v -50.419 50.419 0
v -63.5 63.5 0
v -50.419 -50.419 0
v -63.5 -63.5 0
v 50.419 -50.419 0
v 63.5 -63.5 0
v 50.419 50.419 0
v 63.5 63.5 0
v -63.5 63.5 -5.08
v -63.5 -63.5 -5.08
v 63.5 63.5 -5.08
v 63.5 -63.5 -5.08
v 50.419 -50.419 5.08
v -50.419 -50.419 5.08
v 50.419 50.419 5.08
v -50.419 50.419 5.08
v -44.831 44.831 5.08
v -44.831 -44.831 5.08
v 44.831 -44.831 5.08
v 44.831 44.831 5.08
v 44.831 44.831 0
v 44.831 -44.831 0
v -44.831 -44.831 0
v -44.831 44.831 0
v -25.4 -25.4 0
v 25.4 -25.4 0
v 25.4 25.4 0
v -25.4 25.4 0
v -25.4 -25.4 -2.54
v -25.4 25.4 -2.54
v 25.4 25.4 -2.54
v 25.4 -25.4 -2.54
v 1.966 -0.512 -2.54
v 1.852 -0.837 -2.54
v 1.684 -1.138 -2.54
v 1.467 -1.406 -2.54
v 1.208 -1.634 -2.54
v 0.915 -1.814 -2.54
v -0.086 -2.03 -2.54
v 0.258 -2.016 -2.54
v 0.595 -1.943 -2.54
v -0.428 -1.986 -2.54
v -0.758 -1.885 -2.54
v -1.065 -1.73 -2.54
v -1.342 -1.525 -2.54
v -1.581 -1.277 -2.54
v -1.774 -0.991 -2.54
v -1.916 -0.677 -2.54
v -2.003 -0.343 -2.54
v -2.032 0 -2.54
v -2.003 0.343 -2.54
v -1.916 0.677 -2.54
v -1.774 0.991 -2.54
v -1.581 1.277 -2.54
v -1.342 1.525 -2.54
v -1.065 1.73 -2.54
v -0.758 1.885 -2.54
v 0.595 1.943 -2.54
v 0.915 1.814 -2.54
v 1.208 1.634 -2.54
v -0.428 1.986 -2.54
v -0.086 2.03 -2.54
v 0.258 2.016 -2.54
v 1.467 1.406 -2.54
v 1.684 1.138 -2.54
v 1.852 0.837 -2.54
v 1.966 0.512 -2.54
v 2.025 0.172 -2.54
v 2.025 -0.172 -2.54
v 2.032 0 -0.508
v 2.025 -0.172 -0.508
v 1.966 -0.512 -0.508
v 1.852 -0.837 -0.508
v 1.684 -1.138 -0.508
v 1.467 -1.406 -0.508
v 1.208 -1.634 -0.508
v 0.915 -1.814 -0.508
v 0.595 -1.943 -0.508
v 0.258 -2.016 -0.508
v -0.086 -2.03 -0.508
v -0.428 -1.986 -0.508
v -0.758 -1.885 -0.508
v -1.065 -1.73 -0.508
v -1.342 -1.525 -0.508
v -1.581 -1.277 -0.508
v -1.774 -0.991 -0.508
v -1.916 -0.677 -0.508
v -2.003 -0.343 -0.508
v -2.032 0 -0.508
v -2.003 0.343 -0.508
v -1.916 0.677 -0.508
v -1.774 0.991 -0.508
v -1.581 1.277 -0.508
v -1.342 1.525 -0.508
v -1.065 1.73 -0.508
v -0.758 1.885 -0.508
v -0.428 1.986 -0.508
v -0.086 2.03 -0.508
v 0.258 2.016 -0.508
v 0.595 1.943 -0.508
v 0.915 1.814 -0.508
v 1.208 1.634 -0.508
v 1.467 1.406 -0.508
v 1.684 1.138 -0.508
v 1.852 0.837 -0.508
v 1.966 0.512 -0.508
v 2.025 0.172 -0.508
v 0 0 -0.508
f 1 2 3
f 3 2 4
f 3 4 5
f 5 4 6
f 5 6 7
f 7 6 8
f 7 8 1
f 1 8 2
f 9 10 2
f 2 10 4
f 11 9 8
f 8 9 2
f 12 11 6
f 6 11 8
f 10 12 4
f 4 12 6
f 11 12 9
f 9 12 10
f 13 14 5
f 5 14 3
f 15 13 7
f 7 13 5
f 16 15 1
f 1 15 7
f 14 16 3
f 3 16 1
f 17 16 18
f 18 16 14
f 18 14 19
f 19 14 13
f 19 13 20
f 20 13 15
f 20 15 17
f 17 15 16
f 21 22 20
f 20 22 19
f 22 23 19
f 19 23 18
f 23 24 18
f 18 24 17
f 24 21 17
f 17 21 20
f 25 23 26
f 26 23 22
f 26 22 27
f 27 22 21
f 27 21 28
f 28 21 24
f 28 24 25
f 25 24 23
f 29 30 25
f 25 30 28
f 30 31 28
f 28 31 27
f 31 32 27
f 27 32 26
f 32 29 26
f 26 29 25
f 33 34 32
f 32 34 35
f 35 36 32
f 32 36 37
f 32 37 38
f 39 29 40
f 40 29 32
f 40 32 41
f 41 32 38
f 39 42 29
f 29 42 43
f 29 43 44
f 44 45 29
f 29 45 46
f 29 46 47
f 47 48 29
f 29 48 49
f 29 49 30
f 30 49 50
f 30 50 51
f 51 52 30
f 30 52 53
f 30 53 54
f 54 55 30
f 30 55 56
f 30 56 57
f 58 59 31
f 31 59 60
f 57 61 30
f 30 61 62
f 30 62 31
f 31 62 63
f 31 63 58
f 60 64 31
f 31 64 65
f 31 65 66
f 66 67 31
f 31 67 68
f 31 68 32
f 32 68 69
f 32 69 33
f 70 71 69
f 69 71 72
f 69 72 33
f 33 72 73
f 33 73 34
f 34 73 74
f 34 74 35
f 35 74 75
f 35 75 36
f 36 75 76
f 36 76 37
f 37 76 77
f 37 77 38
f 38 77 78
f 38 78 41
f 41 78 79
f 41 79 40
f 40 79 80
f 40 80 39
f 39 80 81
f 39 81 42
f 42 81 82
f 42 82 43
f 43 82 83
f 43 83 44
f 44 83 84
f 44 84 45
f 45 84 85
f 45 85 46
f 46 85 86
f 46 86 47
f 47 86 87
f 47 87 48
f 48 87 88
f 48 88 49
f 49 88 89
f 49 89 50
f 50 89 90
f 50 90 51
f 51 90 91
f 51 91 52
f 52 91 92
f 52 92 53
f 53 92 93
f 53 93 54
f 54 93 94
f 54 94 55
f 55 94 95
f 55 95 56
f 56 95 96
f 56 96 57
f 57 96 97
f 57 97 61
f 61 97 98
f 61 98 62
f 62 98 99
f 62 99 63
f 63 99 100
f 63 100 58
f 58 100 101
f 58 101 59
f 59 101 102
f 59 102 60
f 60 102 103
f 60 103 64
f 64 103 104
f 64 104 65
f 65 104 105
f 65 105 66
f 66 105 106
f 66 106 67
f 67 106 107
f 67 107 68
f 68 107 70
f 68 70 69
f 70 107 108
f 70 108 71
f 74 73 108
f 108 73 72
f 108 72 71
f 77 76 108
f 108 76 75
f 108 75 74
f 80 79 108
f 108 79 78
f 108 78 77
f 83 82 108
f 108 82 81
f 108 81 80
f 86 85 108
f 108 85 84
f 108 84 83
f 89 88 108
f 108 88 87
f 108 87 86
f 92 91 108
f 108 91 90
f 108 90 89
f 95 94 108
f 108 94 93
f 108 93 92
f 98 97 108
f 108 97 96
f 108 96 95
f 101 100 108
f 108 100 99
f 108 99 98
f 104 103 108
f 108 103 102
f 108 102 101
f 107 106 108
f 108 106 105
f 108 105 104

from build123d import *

# Parameters (mm, degrees)
SKETCH1_W            = 127
SKETCH1_H            = 127
BOSS_EXTRUDE1_DEPTH  = 5.08
SKETCH2_W            = 100.838
SKETCH2_H            = 100.838
BOSS_EXTRUDE2_DEPTH  = 5.08
SKETCH3_W            = 89.662
SKETCH3_H            = 89.662
CUT_EXTRUDE1_DEPTH   = 5.08
SKETCH8_W            = 50.8
SKETCH8_H            = 50.8
CUT_EXTRUDE2_DEPTH   = 2.54
SKETCH9_R            = 2.032
BOSS_EXTRUDE10_DEPTH = 2.032


with BuildPart() as part:
    # Sketch1 → Boss-Extrude1 (new body)
    with BuildSketch(Plane.XY):
        Rectangle(SKETCH1_W, SKETCH1_H)
    extrude(amount=-BOSS_EXTRUDE1_DEPTH)

    # Sketch2 → Boss-Extrude2 (add)
    with BuildSketch(Plane.XY):
        Rectangle(SKETCH2_W, SKETCH2_H)
    extrude(amount=BOSS_EXTRUDE2_DEPTH)

    # Sketch3 → Cut-Extrude1 (cut)
    with BuildSketch(Plane.XY.offset(5.08)):
        Rectangle(SKETCH3_W, SKETCH3_H)
    extrude(amount=-CUT_EXTRUDE1_DEPTH, mode=Mode.SUBTRACT)

    # Sketch8 → Cut-Extrude2 (cut)
    with BuildSketch(Plane.XY):
        Rectangle(SKETCH8_W, SKETCH8_H)
    extrude(amount=-CUT_EXTRUDE2_DEPTH, mode=Mode.SUBTRACT)

    # Sketch9 → Boss-Extrude10 (add)
    with BuildSketch(Plane.XY.offset(-2.54)):
        Circle(SKETCH9_R)
    extrude(amount=BOSS_EXTRUDE10_DEPTH)


solid = part.part
